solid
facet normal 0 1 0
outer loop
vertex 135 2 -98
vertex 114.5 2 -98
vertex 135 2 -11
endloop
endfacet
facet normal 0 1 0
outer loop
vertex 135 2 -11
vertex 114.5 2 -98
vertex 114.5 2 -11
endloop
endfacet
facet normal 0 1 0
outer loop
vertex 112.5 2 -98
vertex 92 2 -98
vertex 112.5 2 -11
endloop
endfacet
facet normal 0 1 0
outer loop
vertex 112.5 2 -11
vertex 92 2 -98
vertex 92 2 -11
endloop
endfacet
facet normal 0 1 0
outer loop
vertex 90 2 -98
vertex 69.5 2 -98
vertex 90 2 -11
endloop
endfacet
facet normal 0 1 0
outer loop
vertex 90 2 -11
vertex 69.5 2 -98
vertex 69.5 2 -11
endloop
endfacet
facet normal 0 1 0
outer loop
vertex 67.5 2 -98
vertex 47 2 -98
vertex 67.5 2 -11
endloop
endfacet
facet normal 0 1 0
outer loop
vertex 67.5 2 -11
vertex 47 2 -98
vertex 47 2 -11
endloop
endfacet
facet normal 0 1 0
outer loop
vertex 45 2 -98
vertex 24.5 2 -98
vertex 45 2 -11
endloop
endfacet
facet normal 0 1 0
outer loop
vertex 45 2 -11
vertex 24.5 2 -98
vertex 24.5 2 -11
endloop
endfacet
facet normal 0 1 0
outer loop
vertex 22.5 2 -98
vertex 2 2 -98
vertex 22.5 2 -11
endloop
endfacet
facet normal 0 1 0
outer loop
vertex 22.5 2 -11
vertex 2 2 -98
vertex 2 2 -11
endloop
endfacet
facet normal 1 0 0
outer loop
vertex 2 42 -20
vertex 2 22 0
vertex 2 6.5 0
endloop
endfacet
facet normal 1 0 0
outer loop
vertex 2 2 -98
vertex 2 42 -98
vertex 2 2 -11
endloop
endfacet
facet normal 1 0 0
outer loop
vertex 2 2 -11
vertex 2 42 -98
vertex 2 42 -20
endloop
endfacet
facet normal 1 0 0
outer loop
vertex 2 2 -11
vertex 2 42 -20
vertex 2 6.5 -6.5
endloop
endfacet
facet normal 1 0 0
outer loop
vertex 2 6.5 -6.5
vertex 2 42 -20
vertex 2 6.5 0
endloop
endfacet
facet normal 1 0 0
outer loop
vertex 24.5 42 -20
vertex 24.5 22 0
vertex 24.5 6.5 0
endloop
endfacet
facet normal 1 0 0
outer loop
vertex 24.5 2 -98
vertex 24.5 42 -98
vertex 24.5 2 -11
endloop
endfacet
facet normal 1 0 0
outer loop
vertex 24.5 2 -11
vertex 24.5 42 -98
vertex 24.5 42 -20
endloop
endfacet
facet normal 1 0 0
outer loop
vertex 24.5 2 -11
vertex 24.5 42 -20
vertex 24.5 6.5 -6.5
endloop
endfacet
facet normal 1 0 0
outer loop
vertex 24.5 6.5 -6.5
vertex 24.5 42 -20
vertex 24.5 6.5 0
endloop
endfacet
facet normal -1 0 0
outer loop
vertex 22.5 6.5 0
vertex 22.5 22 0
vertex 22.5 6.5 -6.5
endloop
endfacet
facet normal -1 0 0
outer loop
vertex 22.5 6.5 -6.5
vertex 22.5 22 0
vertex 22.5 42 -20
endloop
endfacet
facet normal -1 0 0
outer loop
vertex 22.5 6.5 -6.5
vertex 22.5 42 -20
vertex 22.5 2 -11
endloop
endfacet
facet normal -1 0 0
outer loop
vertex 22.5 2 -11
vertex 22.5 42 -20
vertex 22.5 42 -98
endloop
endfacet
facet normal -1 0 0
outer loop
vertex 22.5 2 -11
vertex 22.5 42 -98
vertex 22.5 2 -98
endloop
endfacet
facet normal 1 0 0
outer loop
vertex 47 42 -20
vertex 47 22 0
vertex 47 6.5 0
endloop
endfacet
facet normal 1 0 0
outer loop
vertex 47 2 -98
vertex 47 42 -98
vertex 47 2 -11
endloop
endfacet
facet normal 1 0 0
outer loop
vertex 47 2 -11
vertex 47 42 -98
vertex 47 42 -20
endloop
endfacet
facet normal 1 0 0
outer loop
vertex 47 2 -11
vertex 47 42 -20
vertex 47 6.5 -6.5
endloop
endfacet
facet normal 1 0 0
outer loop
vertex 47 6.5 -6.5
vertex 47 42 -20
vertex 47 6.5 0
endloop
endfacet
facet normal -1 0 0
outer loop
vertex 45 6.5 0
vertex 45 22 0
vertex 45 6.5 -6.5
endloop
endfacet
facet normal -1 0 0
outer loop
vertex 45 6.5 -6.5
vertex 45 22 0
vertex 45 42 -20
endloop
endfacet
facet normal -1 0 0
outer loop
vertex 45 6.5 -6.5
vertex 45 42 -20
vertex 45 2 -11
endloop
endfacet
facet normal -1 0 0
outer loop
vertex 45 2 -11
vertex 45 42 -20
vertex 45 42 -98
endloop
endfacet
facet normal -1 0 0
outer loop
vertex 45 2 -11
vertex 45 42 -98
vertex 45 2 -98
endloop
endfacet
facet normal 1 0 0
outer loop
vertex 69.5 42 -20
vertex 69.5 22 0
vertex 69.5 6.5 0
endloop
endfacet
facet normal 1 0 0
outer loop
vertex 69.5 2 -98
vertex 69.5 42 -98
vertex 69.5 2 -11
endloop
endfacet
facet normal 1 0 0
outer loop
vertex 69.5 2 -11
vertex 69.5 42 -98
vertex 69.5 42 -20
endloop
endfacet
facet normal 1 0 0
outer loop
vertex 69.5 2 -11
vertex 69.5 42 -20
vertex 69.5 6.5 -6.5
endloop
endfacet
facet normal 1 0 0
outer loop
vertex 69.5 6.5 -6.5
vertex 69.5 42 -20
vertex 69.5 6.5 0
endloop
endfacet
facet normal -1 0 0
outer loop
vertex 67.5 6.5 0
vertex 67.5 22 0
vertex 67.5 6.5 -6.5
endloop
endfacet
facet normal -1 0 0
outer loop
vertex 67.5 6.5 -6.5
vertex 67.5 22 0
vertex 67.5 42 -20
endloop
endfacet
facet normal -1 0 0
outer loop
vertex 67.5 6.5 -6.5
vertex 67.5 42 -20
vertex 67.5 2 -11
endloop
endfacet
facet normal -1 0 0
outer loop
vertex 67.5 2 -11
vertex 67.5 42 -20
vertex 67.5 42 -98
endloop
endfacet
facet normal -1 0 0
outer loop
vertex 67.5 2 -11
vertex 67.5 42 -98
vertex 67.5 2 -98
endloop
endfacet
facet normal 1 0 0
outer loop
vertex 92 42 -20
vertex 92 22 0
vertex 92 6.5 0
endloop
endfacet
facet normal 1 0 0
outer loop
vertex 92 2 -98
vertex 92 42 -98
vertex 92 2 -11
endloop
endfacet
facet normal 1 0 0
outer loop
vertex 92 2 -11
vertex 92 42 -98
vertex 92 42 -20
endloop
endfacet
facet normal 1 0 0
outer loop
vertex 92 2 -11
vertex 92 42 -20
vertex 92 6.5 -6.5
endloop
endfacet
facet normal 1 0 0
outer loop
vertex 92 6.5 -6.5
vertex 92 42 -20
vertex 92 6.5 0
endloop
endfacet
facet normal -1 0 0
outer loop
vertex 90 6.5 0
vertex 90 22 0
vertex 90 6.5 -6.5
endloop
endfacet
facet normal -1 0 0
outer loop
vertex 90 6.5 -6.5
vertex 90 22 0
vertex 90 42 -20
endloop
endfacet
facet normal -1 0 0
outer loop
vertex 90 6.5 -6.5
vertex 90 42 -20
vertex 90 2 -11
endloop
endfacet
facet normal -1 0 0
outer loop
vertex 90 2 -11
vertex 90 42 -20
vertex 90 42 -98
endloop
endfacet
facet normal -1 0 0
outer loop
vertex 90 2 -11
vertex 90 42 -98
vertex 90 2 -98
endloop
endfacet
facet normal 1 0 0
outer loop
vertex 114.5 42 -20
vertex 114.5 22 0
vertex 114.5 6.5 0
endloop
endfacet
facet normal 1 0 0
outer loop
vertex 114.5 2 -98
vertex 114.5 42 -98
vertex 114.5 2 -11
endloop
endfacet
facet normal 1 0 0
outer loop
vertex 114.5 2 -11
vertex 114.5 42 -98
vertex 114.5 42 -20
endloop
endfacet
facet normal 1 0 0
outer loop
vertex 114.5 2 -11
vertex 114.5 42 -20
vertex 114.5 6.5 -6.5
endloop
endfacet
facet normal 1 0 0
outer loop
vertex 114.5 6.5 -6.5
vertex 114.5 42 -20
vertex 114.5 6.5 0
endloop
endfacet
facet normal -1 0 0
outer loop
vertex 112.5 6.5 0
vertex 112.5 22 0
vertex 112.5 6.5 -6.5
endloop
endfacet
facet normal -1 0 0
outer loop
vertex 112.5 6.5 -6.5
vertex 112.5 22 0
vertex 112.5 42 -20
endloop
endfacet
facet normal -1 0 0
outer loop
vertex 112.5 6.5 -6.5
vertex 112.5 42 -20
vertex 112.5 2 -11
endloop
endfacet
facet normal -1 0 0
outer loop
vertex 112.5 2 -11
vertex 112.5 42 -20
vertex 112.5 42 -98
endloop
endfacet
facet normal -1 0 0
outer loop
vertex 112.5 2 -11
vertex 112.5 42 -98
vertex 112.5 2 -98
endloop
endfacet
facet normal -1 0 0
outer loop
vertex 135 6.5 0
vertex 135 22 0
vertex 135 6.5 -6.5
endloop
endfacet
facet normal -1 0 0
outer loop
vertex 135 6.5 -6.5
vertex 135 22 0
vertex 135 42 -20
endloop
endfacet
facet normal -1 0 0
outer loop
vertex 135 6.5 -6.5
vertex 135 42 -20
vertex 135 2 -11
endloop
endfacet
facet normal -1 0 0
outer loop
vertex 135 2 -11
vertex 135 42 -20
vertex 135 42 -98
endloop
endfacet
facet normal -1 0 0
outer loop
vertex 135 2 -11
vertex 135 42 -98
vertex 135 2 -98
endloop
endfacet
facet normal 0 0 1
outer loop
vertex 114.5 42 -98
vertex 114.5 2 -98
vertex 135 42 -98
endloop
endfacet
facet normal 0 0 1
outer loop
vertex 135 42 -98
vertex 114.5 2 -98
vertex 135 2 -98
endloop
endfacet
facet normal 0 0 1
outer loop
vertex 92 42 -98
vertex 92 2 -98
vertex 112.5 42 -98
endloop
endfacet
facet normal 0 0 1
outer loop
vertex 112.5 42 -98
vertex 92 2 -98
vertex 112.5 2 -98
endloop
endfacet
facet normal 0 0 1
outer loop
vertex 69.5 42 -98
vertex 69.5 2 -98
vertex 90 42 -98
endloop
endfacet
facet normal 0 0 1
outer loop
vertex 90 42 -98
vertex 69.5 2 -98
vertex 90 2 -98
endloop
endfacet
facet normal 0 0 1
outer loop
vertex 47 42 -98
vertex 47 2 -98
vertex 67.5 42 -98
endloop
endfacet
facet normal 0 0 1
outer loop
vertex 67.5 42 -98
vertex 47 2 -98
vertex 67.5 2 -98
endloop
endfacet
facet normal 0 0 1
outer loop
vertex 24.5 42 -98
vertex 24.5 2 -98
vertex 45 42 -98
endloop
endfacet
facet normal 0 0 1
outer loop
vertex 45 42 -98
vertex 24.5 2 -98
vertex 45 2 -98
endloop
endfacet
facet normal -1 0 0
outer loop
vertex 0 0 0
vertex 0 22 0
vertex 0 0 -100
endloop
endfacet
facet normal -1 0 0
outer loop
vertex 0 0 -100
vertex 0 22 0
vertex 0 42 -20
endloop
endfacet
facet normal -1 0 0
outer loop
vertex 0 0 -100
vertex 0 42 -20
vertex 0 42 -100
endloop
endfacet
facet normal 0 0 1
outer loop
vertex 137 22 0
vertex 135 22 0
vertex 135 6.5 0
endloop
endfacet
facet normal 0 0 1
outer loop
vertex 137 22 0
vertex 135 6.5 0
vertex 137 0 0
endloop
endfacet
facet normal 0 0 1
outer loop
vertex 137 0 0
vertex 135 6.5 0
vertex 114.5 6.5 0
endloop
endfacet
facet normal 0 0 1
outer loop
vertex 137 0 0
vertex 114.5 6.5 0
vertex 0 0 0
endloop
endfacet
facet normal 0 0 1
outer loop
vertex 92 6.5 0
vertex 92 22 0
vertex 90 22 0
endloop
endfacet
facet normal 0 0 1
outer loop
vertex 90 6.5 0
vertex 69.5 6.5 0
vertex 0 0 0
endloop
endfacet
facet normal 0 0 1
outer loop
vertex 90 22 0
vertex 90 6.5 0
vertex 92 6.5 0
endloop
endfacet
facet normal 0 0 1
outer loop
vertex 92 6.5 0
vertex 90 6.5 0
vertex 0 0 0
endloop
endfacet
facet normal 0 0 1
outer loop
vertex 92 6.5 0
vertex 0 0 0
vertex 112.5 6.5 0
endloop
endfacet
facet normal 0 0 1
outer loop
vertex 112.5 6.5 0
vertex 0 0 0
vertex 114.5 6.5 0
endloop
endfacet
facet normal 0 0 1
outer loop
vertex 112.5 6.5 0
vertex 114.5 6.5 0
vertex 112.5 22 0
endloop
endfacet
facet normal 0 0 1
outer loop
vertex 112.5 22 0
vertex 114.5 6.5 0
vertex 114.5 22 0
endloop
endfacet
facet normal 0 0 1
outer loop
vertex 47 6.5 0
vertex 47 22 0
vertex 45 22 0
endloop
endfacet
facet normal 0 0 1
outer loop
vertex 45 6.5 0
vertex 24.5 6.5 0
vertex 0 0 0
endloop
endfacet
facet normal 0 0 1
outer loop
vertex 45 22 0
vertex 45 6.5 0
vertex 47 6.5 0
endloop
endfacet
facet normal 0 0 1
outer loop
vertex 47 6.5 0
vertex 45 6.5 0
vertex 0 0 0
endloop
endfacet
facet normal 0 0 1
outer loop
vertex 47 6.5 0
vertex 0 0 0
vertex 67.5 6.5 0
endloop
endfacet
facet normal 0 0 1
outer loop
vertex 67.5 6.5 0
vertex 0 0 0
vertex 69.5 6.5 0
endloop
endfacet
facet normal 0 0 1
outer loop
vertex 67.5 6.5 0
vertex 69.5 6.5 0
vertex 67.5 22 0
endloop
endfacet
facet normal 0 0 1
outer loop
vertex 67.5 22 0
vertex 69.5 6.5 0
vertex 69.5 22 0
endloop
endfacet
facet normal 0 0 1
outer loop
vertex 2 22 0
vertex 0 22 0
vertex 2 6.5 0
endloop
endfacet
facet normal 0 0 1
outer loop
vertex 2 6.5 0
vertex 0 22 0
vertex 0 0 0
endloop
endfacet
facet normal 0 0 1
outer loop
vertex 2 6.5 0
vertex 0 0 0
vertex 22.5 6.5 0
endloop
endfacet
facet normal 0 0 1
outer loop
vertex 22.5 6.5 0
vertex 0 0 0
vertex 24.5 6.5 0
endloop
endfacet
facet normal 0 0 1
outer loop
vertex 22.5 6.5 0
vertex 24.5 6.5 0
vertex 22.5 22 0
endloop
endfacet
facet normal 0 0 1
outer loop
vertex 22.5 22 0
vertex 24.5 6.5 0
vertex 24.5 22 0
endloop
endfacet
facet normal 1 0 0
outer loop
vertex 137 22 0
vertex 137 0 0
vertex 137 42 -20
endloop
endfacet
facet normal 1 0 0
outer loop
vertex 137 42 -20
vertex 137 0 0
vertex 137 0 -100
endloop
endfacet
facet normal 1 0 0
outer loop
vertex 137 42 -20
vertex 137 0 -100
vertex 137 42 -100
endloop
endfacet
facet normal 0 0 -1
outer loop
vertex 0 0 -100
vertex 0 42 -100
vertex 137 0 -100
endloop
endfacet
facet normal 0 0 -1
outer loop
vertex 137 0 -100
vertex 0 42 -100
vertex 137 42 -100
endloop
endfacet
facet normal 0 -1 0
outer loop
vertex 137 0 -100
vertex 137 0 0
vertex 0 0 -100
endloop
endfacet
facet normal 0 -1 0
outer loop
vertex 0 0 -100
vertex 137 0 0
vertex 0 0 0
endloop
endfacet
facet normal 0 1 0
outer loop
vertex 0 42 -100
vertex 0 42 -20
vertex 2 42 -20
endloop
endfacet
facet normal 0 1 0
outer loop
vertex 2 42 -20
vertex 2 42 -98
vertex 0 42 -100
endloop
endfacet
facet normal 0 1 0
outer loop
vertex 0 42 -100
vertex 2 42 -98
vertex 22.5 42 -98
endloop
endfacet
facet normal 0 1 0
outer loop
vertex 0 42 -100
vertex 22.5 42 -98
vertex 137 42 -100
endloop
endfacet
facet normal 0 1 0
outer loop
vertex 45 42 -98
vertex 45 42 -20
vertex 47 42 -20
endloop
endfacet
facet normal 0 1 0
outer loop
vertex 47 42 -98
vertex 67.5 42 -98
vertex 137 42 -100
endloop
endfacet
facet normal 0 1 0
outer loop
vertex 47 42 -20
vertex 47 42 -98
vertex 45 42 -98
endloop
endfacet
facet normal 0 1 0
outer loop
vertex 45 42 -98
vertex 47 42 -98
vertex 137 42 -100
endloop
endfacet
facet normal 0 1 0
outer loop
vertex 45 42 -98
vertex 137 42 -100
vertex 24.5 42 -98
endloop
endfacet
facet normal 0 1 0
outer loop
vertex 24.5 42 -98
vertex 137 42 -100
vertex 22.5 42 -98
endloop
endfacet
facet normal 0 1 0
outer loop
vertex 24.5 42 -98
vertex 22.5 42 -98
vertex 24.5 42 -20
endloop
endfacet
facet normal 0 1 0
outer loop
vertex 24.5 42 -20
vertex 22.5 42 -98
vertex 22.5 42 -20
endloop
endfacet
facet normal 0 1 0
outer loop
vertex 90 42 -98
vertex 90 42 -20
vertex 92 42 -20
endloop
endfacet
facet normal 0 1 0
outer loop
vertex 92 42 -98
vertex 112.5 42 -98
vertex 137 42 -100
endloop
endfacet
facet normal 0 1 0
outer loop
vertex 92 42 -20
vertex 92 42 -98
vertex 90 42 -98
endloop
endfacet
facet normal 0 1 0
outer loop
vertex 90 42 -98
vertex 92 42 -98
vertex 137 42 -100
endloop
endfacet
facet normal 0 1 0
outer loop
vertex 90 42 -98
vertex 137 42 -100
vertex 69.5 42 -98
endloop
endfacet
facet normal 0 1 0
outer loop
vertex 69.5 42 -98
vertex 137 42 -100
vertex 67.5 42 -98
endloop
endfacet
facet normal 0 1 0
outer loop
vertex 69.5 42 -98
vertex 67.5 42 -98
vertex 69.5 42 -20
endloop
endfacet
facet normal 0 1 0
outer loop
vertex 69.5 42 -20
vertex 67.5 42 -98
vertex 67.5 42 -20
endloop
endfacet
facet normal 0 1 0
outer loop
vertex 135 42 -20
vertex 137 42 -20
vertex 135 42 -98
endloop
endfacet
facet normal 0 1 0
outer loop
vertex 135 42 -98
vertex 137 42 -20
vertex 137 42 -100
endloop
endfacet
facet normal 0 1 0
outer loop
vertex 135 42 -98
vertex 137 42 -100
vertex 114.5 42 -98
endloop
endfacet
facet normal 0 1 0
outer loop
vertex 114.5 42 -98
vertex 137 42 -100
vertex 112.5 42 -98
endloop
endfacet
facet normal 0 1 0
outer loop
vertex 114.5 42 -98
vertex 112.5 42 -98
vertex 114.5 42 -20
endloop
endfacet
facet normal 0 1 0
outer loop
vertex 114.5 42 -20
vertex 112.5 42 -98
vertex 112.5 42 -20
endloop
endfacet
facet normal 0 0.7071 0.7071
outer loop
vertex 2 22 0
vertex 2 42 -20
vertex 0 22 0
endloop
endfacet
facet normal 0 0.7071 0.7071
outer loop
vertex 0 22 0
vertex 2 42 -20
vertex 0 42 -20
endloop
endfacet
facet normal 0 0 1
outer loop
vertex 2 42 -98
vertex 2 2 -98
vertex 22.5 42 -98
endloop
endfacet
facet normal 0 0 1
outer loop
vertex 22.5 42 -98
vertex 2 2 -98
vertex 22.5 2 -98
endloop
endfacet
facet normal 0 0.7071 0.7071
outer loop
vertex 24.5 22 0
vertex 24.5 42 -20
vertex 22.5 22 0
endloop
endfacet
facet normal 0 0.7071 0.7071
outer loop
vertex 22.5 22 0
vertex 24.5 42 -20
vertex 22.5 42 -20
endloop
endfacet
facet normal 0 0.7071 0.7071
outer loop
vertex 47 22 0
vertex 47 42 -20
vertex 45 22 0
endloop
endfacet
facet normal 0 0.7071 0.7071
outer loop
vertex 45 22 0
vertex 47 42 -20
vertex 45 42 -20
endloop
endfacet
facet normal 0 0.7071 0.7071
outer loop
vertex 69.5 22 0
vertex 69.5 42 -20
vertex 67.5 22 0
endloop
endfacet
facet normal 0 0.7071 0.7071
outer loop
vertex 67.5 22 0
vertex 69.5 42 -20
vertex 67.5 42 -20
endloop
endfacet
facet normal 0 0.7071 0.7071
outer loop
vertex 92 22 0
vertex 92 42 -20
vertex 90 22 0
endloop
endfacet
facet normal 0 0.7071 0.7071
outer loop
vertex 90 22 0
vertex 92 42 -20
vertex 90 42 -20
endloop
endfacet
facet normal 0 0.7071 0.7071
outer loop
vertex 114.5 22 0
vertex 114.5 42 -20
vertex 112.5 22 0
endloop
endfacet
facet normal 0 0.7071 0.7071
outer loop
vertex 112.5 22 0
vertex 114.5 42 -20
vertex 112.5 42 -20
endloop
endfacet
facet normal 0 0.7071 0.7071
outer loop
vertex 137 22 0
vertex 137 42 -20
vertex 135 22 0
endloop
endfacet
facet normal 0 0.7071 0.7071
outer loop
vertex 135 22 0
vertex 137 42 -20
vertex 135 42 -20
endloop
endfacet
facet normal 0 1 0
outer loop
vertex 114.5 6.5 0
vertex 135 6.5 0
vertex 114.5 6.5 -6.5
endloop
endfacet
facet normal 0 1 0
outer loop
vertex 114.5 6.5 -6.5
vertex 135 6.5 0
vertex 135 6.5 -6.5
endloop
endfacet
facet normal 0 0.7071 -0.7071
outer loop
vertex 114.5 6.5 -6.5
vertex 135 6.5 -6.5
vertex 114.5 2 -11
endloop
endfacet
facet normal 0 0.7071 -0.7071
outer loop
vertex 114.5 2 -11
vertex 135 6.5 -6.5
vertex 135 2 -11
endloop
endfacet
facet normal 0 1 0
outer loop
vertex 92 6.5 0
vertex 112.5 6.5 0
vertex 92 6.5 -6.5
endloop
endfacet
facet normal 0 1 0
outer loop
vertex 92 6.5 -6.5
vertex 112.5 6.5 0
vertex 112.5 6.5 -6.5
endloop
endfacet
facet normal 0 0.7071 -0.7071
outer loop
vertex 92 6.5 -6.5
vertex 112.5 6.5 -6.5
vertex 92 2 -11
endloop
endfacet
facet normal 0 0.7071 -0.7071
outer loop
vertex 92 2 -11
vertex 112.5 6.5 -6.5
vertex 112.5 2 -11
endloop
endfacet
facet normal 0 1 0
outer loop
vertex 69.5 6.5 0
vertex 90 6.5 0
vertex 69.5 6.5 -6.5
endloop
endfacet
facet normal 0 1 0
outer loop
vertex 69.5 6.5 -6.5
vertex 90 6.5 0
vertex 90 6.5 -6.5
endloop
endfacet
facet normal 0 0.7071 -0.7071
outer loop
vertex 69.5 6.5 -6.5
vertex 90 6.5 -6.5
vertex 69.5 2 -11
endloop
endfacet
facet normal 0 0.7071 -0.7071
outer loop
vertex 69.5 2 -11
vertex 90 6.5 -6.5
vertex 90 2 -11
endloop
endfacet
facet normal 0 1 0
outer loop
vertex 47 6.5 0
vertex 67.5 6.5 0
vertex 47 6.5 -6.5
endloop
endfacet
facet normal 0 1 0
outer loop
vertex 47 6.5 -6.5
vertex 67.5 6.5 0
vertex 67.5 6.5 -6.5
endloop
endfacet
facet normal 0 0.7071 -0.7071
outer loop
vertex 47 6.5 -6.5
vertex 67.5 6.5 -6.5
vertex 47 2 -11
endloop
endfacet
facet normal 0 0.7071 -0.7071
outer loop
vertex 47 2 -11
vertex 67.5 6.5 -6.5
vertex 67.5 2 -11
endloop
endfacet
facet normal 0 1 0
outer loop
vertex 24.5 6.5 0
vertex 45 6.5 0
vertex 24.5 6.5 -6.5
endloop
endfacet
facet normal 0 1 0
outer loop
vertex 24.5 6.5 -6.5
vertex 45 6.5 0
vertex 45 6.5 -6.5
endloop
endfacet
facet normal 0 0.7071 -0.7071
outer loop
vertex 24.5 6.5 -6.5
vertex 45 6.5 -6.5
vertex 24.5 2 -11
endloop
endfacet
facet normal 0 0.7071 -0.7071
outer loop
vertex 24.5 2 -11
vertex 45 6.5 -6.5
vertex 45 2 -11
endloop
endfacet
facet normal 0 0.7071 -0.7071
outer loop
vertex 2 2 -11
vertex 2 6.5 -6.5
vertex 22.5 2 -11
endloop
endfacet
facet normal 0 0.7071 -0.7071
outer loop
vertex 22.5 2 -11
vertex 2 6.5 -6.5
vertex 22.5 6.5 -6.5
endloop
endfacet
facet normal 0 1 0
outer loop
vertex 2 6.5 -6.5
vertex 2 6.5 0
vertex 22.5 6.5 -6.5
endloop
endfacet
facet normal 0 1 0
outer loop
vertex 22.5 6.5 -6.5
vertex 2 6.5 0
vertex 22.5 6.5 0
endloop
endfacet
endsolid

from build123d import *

# Parameters (mm, degrees)
SKETCH1_W            = 137
SKETCH1_H            = 100
BOSS_EXTRUDE1_DEPTH  = 2
BOSS_EXTRUDE2_DEPTH  = 2
SKETCH4_W            = 135
SKETCH4_H            = 40
BOSS_EXTRUDE3_DEPTH  = 2
BOSS_EXTRUDE6_START  = -22.5
BOSS_EXTRUDE6_DEPTH  = 2
BOSS_EXTRUDE7_START  = -45
BOSS_EXTRUDE7_DEPTH  = 2
BOSS_EXTRUDE8_START  = -67.5
BOSS_EXTRUDE8_DEPTH  = 2
BOSS_EXTRUDE9_START  = -90
BOSS_EXTRUDE9_DEPTH  = 2
BOSS_EXTRUDE10_START = -112.5
BOSS_EXTRUDE10_DEPTH = 2
BOSS_EXTRUDE11_START = -135
BOSS_EXTRUDE11_DEPTH = 2
BOSS_EXTRUDE12_DEPTH = 133


with BuildPart() as part:
    # Sketch1 → Boss-Extrude1 (new body)
    with BuildSketch(Plane(origin=(0, 0, 0), x_dir=(1, 0, 0), z_dir=(0, 1, 0))):
        with Locations((68.5, 50)):
            Rectangle(SKETCH1_W, SKETCH1_H)
    extrude(amount=BOSS_EXTRUDE1_DEPTH)

    # Sketch3 → Boss-Extrude2 (add)
    with BuildSketch(Plane.ZY):
        Polygon((-100, 2), (-100, 42), (-20, 42), (0, 22), (0, 2), align=None)
    extrude(amount=-BOSS_EXTRUDE2_DEPTH)

    # Sketch4 → Boss-Extrude3 (add)
    with BuildSketch(Plane(origin=(0, 0, -100), x_dir=(-1, 0, 0), z_dir=(0, 0, -1))):
        with Locations((-69.5, 22)):
            Rectangle(SKETCH4_W, SKETCH4_H)
    extrude(amount=-BOSS_EXTRUDE3_DEPTH)

    # Sketch3<5> → Boss-Extrude6 (add)
    with BuildSketch(Plane.ZY.offset(BOSS_EXTRUDE6_START)):
        Polygon((-100, 2), (-100, 42), (-20, 42), (0, 22), (0, 2), align=None)
    extrude(amount=-BOSS_EXTRUDE6_DEPTH)

    # Sketch3<6> → Boss-Extrude7 (add)
    with BuildSketch(Plane.ZY.offset(BOSS_EXTRUDE7_START)):
        Polygon((-100, 2), (-100, 42), (-20, 42), (0, 22), (0, 2), align=None)
    extrude(amount=-BOSS_EXTRUDE7_DEPTH)

    # Sketch3<7> → Boss-Extrude8 (add)
    with BuildSketch(Plane.ZY.offset(BOSS_EXTRUDE8_START)):
        Polygon((-100, 2), (-100, 42), (-20, 42), (0, 22), (0, 2), align=None)
    extrude(amount=-BOSS_EXTRUDE8_DEPTH)

    # Sketch3<8> → Boss-Extrude9 (add)
    with BuildSketch(Plane.ZY.offset(BOSS_EXTRUDE9_START)):
        Polygon((-100, 2), (-100, 42), (-20, 42), (0, 22), (0, 2), align=None)
    extrude(amount=-BOSS_EXTRUDE9_DEPTH)

    # Sketch3<9> → Boss-Extrude10 (add)
    with BuildSketch(Plane.ZY.offset(BOSS_EXTRUDE10_START)):
        Polygon((-100, 2), (-100, 42), (-20, 42), (0, 22), (0, 2), align=None)
    extrude(amount=-BOSS_EXTRUDE10_DEPTH)

    # Sketch3<10> → Boss-Extrude11 (add)
    with BuildSketch(Plane.ZY.offset(BOSS_EXTRUDE11_START)):
        Polygon((-100, 2), (-100, 42), (-20, 42), (0, 22), (0, 2), align=None)
    extrude(amount=-BOSS_EXTRUDE11_DEPTH)

    # Sketch5 → Boss-Extrude12 (add)
    with BuildSketch(Plane(origin=(2, 0, 0), x_dir=(0, 0, -1), z_dir=(1, 0, 0))):
        Polygon((0, 2), (0, 6.5), (6.5, 6.5), (11, 2), align=None)
    extrude(amount=BOSS_EXTRUDE12_DEPTH)


solid = part.part
